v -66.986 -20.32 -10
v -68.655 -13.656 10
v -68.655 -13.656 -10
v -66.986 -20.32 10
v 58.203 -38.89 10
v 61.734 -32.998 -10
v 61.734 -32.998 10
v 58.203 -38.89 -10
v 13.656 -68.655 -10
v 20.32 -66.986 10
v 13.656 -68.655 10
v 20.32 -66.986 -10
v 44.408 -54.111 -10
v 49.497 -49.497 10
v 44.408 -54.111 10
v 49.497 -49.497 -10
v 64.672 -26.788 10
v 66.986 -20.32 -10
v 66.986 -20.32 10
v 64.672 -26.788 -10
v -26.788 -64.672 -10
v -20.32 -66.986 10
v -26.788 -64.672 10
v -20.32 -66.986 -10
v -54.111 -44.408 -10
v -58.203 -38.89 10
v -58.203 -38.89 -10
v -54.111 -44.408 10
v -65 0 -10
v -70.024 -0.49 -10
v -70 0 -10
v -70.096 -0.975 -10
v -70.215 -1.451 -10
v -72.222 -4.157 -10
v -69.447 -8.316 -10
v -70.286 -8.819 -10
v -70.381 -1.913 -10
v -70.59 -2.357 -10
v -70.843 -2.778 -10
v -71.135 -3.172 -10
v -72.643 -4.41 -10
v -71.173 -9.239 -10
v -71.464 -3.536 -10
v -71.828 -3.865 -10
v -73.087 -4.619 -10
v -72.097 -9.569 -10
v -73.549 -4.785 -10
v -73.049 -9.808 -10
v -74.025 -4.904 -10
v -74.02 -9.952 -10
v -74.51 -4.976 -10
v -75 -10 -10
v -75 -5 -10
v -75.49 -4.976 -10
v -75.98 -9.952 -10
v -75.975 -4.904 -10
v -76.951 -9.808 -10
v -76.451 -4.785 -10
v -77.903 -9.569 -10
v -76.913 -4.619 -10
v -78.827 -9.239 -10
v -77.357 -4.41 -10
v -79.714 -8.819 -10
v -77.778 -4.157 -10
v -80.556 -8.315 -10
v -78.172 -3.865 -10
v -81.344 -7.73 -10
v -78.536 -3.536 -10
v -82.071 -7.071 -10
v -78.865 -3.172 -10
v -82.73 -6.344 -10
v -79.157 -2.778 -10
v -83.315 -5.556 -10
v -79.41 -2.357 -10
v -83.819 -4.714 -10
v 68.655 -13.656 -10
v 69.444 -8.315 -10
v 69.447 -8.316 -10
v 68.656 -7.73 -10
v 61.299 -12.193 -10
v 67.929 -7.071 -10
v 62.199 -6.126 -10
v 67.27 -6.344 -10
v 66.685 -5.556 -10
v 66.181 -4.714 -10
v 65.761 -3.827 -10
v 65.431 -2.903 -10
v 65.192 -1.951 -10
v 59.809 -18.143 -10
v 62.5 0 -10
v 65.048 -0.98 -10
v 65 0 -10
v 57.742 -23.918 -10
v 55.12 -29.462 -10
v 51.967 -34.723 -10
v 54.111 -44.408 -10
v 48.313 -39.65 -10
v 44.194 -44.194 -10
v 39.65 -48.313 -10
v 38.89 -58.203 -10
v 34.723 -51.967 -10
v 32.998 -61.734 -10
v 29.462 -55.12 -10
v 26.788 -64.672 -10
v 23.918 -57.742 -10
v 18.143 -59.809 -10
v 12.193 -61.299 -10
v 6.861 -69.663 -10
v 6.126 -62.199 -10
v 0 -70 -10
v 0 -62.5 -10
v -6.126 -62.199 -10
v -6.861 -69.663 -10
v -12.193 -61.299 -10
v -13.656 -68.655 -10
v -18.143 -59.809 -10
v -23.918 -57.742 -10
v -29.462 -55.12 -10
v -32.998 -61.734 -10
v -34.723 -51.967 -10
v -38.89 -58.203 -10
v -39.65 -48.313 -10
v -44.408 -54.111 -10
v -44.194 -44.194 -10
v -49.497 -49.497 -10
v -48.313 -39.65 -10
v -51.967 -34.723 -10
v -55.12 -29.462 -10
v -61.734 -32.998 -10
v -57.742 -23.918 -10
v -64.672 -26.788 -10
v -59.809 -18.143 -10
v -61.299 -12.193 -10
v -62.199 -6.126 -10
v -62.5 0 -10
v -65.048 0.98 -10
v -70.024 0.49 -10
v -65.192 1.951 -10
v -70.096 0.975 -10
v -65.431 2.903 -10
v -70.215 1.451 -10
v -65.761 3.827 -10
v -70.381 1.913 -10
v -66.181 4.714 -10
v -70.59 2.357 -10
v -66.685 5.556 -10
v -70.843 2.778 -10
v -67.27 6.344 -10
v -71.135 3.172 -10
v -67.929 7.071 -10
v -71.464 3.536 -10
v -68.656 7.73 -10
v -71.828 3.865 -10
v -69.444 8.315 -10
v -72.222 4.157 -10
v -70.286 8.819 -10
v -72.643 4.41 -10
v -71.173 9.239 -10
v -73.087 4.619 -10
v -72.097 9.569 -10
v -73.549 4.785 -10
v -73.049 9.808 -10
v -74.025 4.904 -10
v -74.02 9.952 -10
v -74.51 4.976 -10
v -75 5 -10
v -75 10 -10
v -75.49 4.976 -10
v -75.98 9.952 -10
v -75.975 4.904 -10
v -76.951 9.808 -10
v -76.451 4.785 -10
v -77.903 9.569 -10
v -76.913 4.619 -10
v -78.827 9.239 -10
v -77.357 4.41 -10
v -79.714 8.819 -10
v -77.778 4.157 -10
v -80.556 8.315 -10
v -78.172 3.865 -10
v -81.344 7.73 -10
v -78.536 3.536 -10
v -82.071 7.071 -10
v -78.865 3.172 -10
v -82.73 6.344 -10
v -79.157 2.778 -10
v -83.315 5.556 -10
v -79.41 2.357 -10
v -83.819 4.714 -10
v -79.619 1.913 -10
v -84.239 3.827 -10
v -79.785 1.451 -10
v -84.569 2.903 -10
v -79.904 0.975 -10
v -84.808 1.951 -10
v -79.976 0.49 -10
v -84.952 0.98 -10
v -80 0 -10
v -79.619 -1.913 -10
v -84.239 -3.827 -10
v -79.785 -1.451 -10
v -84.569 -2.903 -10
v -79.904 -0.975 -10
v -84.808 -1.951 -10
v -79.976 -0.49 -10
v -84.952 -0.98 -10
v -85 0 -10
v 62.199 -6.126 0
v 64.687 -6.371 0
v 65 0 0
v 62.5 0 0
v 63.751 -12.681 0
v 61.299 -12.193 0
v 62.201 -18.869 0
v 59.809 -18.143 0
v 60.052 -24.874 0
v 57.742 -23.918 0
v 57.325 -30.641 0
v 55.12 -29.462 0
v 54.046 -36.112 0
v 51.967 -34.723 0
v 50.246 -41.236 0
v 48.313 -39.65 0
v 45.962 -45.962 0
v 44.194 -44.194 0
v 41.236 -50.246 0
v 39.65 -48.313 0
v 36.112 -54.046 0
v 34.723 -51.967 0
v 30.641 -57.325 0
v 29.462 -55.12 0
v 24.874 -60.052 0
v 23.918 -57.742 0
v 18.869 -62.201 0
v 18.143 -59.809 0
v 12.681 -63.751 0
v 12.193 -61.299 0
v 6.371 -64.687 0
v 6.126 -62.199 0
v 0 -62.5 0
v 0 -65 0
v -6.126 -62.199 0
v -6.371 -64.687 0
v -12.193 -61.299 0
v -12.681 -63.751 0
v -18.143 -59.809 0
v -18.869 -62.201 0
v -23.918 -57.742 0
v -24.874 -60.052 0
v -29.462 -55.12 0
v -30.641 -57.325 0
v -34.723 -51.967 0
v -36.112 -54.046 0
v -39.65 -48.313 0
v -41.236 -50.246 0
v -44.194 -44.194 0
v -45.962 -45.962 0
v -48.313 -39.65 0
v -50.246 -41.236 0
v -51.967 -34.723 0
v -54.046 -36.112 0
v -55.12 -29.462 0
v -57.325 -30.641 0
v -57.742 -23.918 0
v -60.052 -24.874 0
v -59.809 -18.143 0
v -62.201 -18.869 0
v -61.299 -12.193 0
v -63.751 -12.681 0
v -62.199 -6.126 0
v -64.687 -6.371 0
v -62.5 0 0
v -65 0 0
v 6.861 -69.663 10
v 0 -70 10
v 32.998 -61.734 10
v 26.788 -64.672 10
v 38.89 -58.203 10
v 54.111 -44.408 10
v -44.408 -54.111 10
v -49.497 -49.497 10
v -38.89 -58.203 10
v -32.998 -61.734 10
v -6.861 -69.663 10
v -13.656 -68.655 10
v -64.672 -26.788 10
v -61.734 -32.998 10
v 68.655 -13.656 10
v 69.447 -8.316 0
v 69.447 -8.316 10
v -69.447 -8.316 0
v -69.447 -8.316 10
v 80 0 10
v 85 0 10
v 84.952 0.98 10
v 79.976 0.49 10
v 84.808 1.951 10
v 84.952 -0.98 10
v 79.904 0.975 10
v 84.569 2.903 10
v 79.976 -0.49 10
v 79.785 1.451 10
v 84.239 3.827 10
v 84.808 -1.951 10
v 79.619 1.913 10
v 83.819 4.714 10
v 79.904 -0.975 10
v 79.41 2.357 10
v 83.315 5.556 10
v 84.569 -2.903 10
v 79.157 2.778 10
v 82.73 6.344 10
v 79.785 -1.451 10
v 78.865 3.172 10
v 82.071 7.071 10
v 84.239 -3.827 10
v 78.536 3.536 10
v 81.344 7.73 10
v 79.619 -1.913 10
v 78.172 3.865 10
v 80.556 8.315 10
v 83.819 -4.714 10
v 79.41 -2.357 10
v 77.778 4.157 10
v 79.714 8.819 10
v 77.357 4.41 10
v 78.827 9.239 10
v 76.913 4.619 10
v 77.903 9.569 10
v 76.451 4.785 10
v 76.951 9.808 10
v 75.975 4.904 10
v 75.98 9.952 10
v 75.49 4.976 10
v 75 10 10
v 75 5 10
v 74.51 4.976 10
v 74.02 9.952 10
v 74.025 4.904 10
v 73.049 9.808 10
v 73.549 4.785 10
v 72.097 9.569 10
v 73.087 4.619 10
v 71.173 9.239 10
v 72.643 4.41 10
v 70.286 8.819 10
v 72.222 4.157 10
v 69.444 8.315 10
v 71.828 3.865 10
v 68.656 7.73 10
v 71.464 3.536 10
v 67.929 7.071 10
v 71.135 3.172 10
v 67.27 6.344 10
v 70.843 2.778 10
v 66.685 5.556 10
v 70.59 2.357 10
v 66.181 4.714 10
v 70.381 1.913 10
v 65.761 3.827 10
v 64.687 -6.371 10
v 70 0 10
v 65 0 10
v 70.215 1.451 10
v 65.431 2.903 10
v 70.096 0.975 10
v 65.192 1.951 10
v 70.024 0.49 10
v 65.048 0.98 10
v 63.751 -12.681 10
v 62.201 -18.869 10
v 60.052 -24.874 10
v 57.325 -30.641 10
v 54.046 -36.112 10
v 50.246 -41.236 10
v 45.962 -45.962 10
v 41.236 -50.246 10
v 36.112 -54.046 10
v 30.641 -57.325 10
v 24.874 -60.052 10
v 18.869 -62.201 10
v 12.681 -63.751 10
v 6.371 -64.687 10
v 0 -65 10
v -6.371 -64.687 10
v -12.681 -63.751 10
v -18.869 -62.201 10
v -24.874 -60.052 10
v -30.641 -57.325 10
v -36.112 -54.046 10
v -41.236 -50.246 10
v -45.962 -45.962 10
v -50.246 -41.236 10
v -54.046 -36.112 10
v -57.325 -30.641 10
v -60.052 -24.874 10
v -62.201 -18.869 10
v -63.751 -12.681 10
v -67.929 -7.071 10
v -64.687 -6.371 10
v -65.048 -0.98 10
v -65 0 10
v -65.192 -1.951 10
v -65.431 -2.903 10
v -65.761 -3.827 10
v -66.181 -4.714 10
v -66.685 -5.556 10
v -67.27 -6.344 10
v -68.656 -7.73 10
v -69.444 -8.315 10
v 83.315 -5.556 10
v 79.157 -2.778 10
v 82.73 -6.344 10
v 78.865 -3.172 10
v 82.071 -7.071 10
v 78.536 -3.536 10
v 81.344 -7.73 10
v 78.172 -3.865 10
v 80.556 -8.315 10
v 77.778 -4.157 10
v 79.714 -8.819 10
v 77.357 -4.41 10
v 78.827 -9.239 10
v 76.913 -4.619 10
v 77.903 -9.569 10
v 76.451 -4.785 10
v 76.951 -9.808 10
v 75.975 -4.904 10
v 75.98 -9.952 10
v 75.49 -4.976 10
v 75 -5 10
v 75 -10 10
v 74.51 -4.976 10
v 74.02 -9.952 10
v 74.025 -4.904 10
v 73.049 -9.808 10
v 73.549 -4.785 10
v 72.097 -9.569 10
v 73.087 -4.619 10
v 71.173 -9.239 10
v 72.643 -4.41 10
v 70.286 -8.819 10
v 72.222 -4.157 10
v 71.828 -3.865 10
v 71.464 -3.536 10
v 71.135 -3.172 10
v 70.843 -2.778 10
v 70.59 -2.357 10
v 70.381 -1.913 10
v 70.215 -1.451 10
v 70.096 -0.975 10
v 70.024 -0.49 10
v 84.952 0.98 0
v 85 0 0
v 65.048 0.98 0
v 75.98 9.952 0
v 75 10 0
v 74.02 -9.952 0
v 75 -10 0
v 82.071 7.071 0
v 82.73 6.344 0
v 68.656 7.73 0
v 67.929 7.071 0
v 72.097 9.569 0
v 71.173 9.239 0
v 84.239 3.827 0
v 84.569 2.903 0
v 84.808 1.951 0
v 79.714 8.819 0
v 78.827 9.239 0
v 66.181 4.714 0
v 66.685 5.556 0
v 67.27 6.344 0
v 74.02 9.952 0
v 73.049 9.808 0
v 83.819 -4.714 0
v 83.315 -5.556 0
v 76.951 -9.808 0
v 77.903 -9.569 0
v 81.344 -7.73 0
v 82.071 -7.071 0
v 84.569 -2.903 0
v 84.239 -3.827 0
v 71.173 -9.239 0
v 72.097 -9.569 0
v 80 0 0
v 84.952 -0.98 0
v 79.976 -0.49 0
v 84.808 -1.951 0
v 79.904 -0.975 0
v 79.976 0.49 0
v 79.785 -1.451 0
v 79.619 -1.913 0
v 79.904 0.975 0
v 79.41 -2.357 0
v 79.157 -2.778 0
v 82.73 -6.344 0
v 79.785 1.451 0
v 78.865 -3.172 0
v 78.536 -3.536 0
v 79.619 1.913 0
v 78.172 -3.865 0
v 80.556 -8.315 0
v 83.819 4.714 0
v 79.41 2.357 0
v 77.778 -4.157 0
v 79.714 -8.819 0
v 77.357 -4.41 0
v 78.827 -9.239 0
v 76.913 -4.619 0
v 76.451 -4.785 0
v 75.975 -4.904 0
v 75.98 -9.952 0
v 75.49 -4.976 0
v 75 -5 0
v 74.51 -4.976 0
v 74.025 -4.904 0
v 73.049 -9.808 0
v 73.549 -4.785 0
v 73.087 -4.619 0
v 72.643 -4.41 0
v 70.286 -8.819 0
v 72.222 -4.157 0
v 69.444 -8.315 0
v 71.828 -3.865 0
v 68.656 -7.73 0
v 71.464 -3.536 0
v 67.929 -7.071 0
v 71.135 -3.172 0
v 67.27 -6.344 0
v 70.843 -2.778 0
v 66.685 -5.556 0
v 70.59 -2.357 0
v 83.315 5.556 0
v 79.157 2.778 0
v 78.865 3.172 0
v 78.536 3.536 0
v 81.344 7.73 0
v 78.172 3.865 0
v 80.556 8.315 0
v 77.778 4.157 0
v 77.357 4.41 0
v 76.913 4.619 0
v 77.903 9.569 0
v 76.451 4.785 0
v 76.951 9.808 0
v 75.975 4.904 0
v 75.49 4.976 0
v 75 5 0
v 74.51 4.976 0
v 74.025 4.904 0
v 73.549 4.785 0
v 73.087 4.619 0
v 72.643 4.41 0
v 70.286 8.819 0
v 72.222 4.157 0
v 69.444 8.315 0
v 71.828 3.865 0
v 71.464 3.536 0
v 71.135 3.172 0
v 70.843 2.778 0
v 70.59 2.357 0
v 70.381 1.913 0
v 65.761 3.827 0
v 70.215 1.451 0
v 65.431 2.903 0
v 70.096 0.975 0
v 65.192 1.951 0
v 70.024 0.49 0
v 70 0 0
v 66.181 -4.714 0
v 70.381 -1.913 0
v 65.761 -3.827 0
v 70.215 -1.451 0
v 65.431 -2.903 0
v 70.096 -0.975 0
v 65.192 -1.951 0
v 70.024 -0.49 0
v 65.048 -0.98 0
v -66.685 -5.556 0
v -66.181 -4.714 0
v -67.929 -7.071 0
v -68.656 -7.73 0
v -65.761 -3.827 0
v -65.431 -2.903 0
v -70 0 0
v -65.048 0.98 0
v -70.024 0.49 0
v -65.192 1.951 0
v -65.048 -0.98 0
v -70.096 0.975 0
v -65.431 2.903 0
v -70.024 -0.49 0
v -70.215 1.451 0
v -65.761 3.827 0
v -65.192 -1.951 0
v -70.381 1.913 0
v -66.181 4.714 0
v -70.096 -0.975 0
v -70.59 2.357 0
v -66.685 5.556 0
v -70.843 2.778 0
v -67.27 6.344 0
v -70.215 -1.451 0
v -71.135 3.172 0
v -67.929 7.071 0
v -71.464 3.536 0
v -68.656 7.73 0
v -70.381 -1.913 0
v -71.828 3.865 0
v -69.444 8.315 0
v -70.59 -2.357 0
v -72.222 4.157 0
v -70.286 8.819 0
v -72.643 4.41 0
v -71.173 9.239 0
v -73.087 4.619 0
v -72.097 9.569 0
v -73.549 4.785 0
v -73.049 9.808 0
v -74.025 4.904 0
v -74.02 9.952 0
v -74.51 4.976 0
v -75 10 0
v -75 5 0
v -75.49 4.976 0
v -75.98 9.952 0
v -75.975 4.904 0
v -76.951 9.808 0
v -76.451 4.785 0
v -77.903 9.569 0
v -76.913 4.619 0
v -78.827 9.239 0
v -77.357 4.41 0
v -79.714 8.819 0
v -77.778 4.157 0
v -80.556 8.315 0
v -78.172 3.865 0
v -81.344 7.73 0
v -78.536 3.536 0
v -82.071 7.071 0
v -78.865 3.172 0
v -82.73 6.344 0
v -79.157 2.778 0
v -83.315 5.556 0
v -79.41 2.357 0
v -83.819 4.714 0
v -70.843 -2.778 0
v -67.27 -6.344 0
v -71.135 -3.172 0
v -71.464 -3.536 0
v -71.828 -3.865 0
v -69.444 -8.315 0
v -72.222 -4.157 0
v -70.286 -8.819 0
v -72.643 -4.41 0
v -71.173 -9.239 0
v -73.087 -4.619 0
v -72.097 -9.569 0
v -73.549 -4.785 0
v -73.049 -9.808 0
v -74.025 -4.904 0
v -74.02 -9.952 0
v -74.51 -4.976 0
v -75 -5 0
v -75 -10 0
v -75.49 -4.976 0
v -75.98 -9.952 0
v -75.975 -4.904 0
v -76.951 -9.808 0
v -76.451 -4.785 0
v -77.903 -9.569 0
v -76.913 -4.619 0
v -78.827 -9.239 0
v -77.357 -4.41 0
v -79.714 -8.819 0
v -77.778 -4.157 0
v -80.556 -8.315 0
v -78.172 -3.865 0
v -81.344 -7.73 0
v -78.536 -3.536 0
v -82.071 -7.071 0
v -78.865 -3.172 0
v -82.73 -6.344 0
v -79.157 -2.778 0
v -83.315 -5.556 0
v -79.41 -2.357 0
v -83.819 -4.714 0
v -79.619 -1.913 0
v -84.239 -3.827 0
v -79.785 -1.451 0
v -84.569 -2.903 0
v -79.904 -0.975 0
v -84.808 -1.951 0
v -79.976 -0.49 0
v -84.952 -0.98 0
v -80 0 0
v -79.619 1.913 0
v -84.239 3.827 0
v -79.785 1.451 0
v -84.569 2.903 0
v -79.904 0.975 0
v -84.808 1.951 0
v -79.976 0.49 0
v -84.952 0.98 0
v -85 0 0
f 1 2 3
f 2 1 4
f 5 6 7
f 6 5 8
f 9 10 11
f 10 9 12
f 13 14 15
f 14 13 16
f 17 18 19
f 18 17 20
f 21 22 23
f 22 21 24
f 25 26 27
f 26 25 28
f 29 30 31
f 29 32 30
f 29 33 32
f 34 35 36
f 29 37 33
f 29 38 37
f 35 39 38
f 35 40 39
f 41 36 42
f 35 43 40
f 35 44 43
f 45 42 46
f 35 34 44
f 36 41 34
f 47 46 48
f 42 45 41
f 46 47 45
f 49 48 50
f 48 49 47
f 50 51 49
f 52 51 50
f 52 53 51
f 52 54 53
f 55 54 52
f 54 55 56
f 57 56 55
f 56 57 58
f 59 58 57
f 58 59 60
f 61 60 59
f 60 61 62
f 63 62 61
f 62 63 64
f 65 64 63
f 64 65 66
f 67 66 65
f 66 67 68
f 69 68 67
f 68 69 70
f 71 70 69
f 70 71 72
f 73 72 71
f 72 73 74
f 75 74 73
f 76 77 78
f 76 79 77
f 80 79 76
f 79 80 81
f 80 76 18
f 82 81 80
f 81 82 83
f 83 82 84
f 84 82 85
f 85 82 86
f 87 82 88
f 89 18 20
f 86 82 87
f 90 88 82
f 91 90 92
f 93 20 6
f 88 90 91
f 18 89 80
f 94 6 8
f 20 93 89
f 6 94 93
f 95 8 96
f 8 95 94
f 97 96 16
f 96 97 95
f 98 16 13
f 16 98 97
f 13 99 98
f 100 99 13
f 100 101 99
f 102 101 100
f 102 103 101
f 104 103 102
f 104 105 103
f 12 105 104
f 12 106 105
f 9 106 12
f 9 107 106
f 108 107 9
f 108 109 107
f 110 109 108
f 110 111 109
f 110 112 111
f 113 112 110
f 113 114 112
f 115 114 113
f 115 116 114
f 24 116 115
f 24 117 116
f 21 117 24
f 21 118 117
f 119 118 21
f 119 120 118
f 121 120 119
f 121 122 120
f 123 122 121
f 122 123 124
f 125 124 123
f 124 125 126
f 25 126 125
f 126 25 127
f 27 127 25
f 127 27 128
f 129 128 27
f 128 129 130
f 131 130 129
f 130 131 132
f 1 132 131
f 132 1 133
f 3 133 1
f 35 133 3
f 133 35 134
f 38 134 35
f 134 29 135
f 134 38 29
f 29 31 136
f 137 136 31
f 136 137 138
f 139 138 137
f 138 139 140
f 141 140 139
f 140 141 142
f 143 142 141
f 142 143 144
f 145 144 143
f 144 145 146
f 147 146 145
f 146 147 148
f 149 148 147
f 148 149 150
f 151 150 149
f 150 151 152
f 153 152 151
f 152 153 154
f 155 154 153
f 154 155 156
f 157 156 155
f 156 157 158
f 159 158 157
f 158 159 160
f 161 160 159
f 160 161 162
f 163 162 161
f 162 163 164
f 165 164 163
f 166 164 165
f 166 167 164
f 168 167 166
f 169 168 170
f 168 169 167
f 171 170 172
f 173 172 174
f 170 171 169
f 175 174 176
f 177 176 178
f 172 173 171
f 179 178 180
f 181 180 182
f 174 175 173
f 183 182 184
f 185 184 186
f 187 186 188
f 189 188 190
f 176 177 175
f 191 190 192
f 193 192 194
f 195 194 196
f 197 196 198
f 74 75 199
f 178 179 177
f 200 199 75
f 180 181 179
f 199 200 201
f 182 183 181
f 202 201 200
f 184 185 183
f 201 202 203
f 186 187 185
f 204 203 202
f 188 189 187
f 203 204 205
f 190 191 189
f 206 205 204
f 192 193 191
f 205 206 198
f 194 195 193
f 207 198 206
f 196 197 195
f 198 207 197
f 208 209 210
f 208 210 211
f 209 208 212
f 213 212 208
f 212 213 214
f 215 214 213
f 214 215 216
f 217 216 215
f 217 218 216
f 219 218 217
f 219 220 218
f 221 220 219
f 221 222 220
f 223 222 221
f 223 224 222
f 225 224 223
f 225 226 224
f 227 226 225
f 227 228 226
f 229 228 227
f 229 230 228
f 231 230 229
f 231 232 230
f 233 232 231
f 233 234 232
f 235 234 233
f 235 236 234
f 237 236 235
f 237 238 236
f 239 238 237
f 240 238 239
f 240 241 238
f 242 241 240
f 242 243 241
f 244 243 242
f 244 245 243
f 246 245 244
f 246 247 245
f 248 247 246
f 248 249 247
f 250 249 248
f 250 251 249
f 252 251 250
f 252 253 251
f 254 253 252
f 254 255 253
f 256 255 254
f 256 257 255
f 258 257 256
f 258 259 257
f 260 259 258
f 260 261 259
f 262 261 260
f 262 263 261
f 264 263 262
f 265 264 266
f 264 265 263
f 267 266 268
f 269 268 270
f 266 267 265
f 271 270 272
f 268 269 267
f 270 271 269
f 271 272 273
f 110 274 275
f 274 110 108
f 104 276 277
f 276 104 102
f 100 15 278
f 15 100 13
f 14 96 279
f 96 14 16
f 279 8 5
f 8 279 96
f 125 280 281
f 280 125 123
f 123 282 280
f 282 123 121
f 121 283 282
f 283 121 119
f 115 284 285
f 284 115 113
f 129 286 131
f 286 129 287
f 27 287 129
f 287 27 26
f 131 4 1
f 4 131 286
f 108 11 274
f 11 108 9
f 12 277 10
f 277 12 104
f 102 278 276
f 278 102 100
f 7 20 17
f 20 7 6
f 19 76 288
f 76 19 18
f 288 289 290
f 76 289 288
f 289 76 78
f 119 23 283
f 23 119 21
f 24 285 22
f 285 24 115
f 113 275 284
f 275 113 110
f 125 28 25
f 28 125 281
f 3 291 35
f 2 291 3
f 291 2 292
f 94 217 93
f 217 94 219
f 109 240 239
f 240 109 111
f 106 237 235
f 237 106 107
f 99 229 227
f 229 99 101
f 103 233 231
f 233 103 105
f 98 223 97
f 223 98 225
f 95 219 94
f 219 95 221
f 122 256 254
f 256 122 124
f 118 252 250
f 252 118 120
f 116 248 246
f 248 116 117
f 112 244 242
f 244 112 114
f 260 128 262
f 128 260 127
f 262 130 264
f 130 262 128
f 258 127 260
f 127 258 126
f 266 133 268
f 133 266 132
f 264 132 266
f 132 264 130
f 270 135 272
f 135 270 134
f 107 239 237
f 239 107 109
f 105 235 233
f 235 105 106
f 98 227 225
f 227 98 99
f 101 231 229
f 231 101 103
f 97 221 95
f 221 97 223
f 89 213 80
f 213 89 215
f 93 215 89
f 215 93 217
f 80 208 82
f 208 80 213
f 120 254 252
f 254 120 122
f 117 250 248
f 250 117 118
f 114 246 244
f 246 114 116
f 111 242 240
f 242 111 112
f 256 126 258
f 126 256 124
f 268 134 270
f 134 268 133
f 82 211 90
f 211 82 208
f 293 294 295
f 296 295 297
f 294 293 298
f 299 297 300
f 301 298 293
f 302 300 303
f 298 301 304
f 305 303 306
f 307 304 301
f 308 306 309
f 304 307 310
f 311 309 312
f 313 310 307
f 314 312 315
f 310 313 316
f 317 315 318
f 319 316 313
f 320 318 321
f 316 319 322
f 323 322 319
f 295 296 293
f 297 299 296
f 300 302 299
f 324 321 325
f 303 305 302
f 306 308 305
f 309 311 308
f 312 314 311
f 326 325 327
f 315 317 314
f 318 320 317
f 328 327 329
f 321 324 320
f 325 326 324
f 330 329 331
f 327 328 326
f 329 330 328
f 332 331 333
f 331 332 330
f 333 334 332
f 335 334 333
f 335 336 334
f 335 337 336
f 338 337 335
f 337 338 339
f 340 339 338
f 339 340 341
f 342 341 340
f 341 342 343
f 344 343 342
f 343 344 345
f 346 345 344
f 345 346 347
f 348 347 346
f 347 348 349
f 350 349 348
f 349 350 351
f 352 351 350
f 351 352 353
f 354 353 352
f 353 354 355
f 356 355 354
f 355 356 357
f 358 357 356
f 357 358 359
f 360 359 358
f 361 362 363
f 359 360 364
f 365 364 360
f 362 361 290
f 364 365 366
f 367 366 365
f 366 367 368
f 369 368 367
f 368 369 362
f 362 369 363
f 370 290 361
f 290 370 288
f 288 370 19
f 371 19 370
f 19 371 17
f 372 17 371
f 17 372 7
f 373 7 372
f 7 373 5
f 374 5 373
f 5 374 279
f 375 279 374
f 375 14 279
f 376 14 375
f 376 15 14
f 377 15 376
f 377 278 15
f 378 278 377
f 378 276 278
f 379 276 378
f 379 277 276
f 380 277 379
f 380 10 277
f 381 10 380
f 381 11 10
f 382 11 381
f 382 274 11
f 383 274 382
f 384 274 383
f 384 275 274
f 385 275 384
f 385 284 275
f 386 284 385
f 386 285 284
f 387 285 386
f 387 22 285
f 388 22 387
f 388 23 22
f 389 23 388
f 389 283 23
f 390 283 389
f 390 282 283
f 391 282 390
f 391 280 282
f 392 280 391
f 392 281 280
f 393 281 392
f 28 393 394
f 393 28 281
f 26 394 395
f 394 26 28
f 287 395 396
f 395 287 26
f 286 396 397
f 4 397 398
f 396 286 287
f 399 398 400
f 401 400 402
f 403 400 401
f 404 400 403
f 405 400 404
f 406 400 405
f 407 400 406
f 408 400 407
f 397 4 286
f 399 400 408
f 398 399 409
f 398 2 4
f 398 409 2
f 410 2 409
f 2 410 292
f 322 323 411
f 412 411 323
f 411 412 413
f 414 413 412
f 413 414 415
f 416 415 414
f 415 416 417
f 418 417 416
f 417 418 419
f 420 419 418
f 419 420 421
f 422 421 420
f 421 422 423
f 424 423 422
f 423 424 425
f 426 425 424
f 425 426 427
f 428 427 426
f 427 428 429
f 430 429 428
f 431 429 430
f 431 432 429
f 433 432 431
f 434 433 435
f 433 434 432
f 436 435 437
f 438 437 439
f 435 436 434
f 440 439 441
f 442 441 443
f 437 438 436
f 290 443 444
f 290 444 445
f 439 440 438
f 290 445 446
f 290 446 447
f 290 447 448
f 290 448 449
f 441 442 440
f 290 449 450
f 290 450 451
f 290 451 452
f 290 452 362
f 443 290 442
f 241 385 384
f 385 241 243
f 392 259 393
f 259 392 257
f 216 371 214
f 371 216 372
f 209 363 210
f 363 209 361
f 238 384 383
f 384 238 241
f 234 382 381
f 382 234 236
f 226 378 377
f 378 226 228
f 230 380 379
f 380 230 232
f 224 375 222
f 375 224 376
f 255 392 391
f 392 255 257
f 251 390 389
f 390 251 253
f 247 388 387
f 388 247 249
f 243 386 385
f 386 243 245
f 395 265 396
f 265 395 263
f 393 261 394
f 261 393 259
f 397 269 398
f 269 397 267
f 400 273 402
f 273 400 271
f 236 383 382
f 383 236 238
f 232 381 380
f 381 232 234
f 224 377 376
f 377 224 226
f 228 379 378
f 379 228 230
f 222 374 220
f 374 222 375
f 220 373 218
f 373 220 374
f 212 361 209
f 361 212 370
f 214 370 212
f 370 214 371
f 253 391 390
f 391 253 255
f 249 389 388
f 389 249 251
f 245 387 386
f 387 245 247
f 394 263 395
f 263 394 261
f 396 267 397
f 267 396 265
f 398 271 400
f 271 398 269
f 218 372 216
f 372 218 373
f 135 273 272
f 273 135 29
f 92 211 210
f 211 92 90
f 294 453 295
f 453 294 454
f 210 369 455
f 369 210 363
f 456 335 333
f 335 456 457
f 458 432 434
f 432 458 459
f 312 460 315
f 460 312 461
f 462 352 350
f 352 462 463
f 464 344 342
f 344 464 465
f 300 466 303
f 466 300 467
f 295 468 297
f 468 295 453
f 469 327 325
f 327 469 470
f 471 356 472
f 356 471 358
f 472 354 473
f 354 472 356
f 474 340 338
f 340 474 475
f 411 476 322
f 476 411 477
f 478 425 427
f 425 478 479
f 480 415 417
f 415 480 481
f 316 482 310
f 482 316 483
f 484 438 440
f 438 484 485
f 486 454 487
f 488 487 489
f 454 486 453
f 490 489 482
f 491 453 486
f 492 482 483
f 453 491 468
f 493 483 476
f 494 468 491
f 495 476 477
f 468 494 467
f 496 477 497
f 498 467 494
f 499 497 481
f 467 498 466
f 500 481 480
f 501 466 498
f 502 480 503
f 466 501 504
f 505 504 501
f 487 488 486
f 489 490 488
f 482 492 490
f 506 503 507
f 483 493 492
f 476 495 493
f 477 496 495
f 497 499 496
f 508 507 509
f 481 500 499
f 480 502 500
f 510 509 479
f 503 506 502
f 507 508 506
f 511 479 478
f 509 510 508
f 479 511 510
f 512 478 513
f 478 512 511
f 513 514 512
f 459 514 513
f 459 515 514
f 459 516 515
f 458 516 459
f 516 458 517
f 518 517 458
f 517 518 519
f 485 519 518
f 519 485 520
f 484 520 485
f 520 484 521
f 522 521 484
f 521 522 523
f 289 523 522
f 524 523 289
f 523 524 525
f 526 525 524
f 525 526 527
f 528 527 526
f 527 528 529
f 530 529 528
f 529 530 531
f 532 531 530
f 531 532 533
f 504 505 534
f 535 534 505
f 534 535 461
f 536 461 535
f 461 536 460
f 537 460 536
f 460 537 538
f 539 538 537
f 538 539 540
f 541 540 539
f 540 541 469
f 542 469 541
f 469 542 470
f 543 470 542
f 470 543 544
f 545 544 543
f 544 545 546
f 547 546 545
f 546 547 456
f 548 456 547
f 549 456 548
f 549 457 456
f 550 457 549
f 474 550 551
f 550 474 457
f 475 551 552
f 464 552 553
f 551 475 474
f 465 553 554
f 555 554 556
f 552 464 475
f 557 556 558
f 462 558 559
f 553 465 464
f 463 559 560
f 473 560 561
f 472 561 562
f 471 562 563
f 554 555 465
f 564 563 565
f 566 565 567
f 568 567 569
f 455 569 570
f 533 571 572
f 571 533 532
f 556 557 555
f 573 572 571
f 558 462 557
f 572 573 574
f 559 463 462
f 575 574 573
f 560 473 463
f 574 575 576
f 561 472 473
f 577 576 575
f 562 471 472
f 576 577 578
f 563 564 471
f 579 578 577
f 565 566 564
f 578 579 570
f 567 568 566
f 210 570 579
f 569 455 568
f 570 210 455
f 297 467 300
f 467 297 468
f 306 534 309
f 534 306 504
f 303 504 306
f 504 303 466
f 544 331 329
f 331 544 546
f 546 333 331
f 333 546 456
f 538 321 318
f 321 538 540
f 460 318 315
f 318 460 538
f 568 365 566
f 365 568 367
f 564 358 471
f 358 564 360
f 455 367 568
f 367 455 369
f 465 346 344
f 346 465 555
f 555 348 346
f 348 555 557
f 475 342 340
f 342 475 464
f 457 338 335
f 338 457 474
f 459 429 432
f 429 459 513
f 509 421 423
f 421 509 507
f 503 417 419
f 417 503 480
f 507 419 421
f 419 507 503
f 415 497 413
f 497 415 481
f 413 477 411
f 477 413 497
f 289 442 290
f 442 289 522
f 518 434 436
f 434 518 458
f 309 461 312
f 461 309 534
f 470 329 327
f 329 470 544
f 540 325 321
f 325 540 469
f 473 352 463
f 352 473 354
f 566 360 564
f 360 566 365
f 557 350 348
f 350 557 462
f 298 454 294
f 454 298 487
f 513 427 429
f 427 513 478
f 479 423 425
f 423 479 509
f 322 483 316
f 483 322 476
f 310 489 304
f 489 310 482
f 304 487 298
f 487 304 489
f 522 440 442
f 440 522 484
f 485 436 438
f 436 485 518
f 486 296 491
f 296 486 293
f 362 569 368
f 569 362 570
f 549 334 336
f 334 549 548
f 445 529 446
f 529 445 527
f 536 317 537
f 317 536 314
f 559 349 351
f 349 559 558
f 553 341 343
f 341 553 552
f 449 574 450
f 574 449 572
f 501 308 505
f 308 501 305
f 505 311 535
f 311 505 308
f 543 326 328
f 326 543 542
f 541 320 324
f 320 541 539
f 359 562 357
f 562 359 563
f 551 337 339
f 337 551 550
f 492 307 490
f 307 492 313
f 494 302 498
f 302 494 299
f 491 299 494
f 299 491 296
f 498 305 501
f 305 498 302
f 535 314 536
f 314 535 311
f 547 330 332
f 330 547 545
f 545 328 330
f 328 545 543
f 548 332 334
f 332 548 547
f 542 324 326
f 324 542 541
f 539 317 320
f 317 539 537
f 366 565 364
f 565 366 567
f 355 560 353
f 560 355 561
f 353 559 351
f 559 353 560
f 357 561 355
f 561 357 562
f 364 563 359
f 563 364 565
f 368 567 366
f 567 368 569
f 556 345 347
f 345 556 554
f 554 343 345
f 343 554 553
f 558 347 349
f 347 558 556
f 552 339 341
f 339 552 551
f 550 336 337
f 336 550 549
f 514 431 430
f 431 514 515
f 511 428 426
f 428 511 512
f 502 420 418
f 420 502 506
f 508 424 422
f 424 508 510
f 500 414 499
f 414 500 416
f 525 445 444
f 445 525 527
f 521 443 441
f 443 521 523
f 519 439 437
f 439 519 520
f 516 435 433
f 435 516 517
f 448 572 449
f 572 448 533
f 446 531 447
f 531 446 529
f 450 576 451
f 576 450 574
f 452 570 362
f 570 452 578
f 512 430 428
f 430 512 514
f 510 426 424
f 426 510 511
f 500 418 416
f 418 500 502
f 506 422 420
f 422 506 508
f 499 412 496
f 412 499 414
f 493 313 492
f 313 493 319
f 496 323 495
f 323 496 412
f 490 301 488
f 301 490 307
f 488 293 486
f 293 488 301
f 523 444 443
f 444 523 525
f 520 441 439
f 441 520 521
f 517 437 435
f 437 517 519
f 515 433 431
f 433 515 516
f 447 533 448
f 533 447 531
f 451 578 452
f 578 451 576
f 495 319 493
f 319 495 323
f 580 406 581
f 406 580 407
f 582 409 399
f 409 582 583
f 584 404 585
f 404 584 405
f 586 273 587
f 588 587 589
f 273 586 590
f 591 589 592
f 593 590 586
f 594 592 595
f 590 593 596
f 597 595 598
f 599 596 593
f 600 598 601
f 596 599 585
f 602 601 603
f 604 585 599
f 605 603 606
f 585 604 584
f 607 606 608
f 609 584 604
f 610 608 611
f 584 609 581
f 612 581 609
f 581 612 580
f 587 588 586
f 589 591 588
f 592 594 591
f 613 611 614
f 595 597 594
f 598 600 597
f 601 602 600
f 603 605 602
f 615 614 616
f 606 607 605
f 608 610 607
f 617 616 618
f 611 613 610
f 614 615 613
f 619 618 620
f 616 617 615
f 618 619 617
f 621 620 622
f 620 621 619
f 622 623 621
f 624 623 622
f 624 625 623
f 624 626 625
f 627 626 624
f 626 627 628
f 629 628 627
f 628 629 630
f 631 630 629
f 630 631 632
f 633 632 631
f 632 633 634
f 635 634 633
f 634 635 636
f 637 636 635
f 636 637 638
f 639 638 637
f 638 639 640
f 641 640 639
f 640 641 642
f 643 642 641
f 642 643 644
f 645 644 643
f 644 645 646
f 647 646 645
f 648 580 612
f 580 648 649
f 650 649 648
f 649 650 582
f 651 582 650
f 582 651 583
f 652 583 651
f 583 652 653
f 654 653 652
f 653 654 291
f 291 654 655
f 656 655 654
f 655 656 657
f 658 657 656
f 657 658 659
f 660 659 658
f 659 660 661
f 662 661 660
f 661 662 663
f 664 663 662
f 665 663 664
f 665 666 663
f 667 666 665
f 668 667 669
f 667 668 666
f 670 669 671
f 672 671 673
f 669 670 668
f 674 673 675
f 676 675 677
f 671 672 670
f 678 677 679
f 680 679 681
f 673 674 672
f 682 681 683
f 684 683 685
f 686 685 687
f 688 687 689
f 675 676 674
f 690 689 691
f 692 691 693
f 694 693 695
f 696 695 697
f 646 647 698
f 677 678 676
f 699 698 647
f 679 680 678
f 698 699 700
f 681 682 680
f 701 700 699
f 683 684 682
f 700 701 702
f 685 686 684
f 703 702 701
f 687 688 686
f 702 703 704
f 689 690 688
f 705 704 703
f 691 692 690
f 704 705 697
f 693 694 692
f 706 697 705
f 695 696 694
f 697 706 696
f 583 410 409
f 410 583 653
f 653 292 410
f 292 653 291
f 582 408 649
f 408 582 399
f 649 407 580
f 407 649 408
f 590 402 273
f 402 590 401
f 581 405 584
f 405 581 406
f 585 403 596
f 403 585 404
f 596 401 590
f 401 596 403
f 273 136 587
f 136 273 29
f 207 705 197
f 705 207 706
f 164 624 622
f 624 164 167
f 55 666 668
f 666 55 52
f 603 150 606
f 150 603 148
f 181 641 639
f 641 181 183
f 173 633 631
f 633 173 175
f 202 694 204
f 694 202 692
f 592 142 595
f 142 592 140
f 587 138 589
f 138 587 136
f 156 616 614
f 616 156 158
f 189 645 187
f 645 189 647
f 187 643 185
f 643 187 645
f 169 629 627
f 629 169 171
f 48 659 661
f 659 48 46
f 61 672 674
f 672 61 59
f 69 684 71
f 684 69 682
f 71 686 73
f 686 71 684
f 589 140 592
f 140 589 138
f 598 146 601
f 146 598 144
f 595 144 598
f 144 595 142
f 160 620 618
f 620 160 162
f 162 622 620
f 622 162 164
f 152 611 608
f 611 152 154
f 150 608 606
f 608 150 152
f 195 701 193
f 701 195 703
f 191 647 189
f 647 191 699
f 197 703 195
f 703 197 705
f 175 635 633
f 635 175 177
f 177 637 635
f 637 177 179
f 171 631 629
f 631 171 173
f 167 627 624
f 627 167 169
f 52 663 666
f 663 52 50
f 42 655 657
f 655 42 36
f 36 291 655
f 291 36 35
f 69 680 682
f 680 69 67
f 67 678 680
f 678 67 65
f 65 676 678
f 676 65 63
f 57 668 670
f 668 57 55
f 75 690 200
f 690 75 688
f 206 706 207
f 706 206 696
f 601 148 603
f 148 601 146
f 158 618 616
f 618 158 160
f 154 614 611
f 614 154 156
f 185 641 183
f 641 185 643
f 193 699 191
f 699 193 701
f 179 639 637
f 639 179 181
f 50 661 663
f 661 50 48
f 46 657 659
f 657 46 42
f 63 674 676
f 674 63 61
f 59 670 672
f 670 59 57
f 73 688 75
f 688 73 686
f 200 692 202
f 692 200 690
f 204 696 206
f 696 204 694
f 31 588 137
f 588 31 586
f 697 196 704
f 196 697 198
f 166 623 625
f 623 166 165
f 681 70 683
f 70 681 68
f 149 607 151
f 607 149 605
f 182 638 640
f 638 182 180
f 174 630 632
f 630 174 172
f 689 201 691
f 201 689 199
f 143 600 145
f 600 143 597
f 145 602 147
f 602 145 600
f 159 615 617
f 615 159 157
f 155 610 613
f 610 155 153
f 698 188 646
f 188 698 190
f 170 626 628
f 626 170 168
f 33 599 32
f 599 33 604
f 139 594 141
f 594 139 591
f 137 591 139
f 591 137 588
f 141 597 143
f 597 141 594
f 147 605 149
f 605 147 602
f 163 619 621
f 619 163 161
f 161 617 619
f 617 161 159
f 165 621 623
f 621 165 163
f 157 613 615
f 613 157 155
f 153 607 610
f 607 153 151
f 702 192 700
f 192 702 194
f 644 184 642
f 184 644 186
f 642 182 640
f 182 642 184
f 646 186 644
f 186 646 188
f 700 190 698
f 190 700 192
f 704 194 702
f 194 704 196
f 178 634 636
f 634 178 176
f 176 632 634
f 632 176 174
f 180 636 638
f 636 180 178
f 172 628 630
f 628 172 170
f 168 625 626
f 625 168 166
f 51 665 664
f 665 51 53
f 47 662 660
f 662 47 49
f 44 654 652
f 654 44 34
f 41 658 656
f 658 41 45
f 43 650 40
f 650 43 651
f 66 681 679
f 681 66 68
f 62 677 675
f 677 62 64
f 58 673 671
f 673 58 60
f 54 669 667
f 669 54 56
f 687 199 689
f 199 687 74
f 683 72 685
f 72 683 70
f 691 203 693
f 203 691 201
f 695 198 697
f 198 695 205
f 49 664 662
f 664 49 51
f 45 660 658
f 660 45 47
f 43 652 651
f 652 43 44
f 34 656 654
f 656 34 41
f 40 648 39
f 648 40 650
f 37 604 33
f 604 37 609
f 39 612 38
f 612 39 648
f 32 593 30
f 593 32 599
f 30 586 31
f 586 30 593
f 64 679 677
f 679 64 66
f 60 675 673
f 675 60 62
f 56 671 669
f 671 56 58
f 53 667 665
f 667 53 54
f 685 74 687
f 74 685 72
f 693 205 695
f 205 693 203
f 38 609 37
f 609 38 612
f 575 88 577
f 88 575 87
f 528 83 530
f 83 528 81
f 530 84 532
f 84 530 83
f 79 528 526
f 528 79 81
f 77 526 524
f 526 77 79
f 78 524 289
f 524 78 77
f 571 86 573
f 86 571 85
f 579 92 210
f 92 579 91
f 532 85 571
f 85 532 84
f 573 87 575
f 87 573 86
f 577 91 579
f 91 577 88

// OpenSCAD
// Generated by SolidPython 1.1.1 on 2022-02-24 15:43:31
$fn = 64;


difference() {
	union() {
		difference() {
			union() {
				difference() {
					union() {
						translate(v = [0, 0, -10.0000000000]) {
							difference() {
								cylinder(h = 10.0000000000, r = 70.0000000000);
								translate(v = [0, 0, -0.0300000000]) {
									cylinder(h = 10.0600000000, r = 62.5000000000);
								}
							}
						}
						difference() {
							cylinder(h = 10.0000000000, r = 70.0000000000);
							translate(v = [0, 0, -0.0300000000]) {
								cylinder(h = 10.0600000000, r = 65.0000000000);
							}
						}
					}
					translate(v = [-70.0000000000, 0, -10.0300000000]) {
						cube(size = [140.0000000000, 140.0000000000, 20.0600000000]);
					}
				}
				translate(v = [75.0000000000, 0, 0]) {
					difference() {
						cylinder(h = 10.0000000000, r = 10.0000000000);
						translate(v = [0, 0, -0.0300000000]) {
							cylinder(h = 10.0600000000, r = 5.0000000000);
						}
					}
				}
			}
			translate(v = [-75.0000000000, 0, 0]) {
				difference() {
					cylinder(h = 10.0000000000, r = 10.0000000000);
					translate(v = [0, 0, -0.0300000000]) {
						cylinder(h = 10.0600000000, r = 5.0000000000);
					}
				}
			}
		}
		translate(v = [-75.0000000000, 0, -10.0000000000]) {
			difference() {
				cylinder(h = 10.0000000000, r = 10.0000000000);
				translate(v = [0, 0, -0.0300000000]) {
					cylinder(h = 10.0600000000, r = 5.0000000000);
				}
			}
		}
	}
	translate(v = [75.0000000000, 0, -10.0000000000]) {
		difference() {
			cylinder(h = 10.0000000000, r = 10.0000000000);
			translate(v = [0, 0, -0.0300000000]) {
				cylinder(h = 10.0600000000, r = 5.0000000000);
			}
		}
	}
}
/***********************************************
*********      SolidPython code:      **********
************************************************
 
from solid import *
from solid.utils import *
import math

cm = 10
z = 0.03
fn = 64


def render(model, filename, fn=fn):
    scad_render_to_file(model, filename, file_header='$fn = %d;' % fn)


tube_radius = 13 * cm / 2
fan_outlet_radius = 12.5 * cm / 2
joint_radius = 0.5 * cm

margin = 0.025 * cm
padding_r = 0.5 * cm
total_height = 2 * cm

fan_outlet = cylinder(
    tube_radius + padding_r, total_height / 2)
fan_outlet_hole = cylinder(fan_outlet_radius, total_height / 2 + z*2)
fan_outlet_hole = translate([0, 0, - z])(fan_outlet_hole)

tube = cylinder(
    tube_radius + padding_r, total_height / 2)
tube_hole = cylinder(tube_radius, total_height / 2 + z*2)
tube_hole = translate([0, 0, - z])(tube_hole)


fan_outlet_attachment = fan_outlet - fan_outlet_hole
fan_outlet_attachment = translate(
    [0, 0, -total_height / 2])(fan_outlet_attachment)

tube_attachment = tube - tube_hole

combined = fan_outlet_attachment + tube_attachment

half = combined - translate([-tube_radius - padding_r, 0, - total_height / 2 - z])(
    cube([2*(tube_radius + padding_r), 2 *
          (tube_radius + padding_r), total_height + z*2])
)

joint_attachment_hole = cylinder(joint_radius, total_height / 2 + 2*z)
joint_attachment_hole = translate([0, 0, -z])(joint_attachment_hole)
joint_attachment = cylinder(
    joint_radius + padding_r, total_height / 2) - joint_attachment_hole

joint_attachment_top = translate(
    [tube_radius + padding_r + joint_radius, 0, 0])(joint_attachment)
joint_attachment_top_hole = translate(
    [-(tube_radius + padding_r + joint_radius), 0, 0])(joint_attachment)

joint_attachment_bottom = translate(
    [-(tube_radius + padding_r + joint_radius), 0, -total_height / 2])(joint_attachment)
joint_attachment_bottom_hole = translate(
    [tube_radius + padding_r + joint_radius, 0, -total_height / 2])(joint_attachment)


nail_head = cylinder(joint_radius + padding_r, padding_r / 2 + 2*z)
nail_head = translate([0, 0, total_height])(nail_head)
nail = cylinder(joint_radius - margin, total_height + 2*z) + nail_head

render(
    half
    + joint_attachment_top
    - joint_attachment_top_hole
    + joint_attachment_bottom
    - joint_attachment_bottom_hole,
    "tube_attachment_half.scad"
)
render(nail, "nail.scad")
 
 
************************************************/
